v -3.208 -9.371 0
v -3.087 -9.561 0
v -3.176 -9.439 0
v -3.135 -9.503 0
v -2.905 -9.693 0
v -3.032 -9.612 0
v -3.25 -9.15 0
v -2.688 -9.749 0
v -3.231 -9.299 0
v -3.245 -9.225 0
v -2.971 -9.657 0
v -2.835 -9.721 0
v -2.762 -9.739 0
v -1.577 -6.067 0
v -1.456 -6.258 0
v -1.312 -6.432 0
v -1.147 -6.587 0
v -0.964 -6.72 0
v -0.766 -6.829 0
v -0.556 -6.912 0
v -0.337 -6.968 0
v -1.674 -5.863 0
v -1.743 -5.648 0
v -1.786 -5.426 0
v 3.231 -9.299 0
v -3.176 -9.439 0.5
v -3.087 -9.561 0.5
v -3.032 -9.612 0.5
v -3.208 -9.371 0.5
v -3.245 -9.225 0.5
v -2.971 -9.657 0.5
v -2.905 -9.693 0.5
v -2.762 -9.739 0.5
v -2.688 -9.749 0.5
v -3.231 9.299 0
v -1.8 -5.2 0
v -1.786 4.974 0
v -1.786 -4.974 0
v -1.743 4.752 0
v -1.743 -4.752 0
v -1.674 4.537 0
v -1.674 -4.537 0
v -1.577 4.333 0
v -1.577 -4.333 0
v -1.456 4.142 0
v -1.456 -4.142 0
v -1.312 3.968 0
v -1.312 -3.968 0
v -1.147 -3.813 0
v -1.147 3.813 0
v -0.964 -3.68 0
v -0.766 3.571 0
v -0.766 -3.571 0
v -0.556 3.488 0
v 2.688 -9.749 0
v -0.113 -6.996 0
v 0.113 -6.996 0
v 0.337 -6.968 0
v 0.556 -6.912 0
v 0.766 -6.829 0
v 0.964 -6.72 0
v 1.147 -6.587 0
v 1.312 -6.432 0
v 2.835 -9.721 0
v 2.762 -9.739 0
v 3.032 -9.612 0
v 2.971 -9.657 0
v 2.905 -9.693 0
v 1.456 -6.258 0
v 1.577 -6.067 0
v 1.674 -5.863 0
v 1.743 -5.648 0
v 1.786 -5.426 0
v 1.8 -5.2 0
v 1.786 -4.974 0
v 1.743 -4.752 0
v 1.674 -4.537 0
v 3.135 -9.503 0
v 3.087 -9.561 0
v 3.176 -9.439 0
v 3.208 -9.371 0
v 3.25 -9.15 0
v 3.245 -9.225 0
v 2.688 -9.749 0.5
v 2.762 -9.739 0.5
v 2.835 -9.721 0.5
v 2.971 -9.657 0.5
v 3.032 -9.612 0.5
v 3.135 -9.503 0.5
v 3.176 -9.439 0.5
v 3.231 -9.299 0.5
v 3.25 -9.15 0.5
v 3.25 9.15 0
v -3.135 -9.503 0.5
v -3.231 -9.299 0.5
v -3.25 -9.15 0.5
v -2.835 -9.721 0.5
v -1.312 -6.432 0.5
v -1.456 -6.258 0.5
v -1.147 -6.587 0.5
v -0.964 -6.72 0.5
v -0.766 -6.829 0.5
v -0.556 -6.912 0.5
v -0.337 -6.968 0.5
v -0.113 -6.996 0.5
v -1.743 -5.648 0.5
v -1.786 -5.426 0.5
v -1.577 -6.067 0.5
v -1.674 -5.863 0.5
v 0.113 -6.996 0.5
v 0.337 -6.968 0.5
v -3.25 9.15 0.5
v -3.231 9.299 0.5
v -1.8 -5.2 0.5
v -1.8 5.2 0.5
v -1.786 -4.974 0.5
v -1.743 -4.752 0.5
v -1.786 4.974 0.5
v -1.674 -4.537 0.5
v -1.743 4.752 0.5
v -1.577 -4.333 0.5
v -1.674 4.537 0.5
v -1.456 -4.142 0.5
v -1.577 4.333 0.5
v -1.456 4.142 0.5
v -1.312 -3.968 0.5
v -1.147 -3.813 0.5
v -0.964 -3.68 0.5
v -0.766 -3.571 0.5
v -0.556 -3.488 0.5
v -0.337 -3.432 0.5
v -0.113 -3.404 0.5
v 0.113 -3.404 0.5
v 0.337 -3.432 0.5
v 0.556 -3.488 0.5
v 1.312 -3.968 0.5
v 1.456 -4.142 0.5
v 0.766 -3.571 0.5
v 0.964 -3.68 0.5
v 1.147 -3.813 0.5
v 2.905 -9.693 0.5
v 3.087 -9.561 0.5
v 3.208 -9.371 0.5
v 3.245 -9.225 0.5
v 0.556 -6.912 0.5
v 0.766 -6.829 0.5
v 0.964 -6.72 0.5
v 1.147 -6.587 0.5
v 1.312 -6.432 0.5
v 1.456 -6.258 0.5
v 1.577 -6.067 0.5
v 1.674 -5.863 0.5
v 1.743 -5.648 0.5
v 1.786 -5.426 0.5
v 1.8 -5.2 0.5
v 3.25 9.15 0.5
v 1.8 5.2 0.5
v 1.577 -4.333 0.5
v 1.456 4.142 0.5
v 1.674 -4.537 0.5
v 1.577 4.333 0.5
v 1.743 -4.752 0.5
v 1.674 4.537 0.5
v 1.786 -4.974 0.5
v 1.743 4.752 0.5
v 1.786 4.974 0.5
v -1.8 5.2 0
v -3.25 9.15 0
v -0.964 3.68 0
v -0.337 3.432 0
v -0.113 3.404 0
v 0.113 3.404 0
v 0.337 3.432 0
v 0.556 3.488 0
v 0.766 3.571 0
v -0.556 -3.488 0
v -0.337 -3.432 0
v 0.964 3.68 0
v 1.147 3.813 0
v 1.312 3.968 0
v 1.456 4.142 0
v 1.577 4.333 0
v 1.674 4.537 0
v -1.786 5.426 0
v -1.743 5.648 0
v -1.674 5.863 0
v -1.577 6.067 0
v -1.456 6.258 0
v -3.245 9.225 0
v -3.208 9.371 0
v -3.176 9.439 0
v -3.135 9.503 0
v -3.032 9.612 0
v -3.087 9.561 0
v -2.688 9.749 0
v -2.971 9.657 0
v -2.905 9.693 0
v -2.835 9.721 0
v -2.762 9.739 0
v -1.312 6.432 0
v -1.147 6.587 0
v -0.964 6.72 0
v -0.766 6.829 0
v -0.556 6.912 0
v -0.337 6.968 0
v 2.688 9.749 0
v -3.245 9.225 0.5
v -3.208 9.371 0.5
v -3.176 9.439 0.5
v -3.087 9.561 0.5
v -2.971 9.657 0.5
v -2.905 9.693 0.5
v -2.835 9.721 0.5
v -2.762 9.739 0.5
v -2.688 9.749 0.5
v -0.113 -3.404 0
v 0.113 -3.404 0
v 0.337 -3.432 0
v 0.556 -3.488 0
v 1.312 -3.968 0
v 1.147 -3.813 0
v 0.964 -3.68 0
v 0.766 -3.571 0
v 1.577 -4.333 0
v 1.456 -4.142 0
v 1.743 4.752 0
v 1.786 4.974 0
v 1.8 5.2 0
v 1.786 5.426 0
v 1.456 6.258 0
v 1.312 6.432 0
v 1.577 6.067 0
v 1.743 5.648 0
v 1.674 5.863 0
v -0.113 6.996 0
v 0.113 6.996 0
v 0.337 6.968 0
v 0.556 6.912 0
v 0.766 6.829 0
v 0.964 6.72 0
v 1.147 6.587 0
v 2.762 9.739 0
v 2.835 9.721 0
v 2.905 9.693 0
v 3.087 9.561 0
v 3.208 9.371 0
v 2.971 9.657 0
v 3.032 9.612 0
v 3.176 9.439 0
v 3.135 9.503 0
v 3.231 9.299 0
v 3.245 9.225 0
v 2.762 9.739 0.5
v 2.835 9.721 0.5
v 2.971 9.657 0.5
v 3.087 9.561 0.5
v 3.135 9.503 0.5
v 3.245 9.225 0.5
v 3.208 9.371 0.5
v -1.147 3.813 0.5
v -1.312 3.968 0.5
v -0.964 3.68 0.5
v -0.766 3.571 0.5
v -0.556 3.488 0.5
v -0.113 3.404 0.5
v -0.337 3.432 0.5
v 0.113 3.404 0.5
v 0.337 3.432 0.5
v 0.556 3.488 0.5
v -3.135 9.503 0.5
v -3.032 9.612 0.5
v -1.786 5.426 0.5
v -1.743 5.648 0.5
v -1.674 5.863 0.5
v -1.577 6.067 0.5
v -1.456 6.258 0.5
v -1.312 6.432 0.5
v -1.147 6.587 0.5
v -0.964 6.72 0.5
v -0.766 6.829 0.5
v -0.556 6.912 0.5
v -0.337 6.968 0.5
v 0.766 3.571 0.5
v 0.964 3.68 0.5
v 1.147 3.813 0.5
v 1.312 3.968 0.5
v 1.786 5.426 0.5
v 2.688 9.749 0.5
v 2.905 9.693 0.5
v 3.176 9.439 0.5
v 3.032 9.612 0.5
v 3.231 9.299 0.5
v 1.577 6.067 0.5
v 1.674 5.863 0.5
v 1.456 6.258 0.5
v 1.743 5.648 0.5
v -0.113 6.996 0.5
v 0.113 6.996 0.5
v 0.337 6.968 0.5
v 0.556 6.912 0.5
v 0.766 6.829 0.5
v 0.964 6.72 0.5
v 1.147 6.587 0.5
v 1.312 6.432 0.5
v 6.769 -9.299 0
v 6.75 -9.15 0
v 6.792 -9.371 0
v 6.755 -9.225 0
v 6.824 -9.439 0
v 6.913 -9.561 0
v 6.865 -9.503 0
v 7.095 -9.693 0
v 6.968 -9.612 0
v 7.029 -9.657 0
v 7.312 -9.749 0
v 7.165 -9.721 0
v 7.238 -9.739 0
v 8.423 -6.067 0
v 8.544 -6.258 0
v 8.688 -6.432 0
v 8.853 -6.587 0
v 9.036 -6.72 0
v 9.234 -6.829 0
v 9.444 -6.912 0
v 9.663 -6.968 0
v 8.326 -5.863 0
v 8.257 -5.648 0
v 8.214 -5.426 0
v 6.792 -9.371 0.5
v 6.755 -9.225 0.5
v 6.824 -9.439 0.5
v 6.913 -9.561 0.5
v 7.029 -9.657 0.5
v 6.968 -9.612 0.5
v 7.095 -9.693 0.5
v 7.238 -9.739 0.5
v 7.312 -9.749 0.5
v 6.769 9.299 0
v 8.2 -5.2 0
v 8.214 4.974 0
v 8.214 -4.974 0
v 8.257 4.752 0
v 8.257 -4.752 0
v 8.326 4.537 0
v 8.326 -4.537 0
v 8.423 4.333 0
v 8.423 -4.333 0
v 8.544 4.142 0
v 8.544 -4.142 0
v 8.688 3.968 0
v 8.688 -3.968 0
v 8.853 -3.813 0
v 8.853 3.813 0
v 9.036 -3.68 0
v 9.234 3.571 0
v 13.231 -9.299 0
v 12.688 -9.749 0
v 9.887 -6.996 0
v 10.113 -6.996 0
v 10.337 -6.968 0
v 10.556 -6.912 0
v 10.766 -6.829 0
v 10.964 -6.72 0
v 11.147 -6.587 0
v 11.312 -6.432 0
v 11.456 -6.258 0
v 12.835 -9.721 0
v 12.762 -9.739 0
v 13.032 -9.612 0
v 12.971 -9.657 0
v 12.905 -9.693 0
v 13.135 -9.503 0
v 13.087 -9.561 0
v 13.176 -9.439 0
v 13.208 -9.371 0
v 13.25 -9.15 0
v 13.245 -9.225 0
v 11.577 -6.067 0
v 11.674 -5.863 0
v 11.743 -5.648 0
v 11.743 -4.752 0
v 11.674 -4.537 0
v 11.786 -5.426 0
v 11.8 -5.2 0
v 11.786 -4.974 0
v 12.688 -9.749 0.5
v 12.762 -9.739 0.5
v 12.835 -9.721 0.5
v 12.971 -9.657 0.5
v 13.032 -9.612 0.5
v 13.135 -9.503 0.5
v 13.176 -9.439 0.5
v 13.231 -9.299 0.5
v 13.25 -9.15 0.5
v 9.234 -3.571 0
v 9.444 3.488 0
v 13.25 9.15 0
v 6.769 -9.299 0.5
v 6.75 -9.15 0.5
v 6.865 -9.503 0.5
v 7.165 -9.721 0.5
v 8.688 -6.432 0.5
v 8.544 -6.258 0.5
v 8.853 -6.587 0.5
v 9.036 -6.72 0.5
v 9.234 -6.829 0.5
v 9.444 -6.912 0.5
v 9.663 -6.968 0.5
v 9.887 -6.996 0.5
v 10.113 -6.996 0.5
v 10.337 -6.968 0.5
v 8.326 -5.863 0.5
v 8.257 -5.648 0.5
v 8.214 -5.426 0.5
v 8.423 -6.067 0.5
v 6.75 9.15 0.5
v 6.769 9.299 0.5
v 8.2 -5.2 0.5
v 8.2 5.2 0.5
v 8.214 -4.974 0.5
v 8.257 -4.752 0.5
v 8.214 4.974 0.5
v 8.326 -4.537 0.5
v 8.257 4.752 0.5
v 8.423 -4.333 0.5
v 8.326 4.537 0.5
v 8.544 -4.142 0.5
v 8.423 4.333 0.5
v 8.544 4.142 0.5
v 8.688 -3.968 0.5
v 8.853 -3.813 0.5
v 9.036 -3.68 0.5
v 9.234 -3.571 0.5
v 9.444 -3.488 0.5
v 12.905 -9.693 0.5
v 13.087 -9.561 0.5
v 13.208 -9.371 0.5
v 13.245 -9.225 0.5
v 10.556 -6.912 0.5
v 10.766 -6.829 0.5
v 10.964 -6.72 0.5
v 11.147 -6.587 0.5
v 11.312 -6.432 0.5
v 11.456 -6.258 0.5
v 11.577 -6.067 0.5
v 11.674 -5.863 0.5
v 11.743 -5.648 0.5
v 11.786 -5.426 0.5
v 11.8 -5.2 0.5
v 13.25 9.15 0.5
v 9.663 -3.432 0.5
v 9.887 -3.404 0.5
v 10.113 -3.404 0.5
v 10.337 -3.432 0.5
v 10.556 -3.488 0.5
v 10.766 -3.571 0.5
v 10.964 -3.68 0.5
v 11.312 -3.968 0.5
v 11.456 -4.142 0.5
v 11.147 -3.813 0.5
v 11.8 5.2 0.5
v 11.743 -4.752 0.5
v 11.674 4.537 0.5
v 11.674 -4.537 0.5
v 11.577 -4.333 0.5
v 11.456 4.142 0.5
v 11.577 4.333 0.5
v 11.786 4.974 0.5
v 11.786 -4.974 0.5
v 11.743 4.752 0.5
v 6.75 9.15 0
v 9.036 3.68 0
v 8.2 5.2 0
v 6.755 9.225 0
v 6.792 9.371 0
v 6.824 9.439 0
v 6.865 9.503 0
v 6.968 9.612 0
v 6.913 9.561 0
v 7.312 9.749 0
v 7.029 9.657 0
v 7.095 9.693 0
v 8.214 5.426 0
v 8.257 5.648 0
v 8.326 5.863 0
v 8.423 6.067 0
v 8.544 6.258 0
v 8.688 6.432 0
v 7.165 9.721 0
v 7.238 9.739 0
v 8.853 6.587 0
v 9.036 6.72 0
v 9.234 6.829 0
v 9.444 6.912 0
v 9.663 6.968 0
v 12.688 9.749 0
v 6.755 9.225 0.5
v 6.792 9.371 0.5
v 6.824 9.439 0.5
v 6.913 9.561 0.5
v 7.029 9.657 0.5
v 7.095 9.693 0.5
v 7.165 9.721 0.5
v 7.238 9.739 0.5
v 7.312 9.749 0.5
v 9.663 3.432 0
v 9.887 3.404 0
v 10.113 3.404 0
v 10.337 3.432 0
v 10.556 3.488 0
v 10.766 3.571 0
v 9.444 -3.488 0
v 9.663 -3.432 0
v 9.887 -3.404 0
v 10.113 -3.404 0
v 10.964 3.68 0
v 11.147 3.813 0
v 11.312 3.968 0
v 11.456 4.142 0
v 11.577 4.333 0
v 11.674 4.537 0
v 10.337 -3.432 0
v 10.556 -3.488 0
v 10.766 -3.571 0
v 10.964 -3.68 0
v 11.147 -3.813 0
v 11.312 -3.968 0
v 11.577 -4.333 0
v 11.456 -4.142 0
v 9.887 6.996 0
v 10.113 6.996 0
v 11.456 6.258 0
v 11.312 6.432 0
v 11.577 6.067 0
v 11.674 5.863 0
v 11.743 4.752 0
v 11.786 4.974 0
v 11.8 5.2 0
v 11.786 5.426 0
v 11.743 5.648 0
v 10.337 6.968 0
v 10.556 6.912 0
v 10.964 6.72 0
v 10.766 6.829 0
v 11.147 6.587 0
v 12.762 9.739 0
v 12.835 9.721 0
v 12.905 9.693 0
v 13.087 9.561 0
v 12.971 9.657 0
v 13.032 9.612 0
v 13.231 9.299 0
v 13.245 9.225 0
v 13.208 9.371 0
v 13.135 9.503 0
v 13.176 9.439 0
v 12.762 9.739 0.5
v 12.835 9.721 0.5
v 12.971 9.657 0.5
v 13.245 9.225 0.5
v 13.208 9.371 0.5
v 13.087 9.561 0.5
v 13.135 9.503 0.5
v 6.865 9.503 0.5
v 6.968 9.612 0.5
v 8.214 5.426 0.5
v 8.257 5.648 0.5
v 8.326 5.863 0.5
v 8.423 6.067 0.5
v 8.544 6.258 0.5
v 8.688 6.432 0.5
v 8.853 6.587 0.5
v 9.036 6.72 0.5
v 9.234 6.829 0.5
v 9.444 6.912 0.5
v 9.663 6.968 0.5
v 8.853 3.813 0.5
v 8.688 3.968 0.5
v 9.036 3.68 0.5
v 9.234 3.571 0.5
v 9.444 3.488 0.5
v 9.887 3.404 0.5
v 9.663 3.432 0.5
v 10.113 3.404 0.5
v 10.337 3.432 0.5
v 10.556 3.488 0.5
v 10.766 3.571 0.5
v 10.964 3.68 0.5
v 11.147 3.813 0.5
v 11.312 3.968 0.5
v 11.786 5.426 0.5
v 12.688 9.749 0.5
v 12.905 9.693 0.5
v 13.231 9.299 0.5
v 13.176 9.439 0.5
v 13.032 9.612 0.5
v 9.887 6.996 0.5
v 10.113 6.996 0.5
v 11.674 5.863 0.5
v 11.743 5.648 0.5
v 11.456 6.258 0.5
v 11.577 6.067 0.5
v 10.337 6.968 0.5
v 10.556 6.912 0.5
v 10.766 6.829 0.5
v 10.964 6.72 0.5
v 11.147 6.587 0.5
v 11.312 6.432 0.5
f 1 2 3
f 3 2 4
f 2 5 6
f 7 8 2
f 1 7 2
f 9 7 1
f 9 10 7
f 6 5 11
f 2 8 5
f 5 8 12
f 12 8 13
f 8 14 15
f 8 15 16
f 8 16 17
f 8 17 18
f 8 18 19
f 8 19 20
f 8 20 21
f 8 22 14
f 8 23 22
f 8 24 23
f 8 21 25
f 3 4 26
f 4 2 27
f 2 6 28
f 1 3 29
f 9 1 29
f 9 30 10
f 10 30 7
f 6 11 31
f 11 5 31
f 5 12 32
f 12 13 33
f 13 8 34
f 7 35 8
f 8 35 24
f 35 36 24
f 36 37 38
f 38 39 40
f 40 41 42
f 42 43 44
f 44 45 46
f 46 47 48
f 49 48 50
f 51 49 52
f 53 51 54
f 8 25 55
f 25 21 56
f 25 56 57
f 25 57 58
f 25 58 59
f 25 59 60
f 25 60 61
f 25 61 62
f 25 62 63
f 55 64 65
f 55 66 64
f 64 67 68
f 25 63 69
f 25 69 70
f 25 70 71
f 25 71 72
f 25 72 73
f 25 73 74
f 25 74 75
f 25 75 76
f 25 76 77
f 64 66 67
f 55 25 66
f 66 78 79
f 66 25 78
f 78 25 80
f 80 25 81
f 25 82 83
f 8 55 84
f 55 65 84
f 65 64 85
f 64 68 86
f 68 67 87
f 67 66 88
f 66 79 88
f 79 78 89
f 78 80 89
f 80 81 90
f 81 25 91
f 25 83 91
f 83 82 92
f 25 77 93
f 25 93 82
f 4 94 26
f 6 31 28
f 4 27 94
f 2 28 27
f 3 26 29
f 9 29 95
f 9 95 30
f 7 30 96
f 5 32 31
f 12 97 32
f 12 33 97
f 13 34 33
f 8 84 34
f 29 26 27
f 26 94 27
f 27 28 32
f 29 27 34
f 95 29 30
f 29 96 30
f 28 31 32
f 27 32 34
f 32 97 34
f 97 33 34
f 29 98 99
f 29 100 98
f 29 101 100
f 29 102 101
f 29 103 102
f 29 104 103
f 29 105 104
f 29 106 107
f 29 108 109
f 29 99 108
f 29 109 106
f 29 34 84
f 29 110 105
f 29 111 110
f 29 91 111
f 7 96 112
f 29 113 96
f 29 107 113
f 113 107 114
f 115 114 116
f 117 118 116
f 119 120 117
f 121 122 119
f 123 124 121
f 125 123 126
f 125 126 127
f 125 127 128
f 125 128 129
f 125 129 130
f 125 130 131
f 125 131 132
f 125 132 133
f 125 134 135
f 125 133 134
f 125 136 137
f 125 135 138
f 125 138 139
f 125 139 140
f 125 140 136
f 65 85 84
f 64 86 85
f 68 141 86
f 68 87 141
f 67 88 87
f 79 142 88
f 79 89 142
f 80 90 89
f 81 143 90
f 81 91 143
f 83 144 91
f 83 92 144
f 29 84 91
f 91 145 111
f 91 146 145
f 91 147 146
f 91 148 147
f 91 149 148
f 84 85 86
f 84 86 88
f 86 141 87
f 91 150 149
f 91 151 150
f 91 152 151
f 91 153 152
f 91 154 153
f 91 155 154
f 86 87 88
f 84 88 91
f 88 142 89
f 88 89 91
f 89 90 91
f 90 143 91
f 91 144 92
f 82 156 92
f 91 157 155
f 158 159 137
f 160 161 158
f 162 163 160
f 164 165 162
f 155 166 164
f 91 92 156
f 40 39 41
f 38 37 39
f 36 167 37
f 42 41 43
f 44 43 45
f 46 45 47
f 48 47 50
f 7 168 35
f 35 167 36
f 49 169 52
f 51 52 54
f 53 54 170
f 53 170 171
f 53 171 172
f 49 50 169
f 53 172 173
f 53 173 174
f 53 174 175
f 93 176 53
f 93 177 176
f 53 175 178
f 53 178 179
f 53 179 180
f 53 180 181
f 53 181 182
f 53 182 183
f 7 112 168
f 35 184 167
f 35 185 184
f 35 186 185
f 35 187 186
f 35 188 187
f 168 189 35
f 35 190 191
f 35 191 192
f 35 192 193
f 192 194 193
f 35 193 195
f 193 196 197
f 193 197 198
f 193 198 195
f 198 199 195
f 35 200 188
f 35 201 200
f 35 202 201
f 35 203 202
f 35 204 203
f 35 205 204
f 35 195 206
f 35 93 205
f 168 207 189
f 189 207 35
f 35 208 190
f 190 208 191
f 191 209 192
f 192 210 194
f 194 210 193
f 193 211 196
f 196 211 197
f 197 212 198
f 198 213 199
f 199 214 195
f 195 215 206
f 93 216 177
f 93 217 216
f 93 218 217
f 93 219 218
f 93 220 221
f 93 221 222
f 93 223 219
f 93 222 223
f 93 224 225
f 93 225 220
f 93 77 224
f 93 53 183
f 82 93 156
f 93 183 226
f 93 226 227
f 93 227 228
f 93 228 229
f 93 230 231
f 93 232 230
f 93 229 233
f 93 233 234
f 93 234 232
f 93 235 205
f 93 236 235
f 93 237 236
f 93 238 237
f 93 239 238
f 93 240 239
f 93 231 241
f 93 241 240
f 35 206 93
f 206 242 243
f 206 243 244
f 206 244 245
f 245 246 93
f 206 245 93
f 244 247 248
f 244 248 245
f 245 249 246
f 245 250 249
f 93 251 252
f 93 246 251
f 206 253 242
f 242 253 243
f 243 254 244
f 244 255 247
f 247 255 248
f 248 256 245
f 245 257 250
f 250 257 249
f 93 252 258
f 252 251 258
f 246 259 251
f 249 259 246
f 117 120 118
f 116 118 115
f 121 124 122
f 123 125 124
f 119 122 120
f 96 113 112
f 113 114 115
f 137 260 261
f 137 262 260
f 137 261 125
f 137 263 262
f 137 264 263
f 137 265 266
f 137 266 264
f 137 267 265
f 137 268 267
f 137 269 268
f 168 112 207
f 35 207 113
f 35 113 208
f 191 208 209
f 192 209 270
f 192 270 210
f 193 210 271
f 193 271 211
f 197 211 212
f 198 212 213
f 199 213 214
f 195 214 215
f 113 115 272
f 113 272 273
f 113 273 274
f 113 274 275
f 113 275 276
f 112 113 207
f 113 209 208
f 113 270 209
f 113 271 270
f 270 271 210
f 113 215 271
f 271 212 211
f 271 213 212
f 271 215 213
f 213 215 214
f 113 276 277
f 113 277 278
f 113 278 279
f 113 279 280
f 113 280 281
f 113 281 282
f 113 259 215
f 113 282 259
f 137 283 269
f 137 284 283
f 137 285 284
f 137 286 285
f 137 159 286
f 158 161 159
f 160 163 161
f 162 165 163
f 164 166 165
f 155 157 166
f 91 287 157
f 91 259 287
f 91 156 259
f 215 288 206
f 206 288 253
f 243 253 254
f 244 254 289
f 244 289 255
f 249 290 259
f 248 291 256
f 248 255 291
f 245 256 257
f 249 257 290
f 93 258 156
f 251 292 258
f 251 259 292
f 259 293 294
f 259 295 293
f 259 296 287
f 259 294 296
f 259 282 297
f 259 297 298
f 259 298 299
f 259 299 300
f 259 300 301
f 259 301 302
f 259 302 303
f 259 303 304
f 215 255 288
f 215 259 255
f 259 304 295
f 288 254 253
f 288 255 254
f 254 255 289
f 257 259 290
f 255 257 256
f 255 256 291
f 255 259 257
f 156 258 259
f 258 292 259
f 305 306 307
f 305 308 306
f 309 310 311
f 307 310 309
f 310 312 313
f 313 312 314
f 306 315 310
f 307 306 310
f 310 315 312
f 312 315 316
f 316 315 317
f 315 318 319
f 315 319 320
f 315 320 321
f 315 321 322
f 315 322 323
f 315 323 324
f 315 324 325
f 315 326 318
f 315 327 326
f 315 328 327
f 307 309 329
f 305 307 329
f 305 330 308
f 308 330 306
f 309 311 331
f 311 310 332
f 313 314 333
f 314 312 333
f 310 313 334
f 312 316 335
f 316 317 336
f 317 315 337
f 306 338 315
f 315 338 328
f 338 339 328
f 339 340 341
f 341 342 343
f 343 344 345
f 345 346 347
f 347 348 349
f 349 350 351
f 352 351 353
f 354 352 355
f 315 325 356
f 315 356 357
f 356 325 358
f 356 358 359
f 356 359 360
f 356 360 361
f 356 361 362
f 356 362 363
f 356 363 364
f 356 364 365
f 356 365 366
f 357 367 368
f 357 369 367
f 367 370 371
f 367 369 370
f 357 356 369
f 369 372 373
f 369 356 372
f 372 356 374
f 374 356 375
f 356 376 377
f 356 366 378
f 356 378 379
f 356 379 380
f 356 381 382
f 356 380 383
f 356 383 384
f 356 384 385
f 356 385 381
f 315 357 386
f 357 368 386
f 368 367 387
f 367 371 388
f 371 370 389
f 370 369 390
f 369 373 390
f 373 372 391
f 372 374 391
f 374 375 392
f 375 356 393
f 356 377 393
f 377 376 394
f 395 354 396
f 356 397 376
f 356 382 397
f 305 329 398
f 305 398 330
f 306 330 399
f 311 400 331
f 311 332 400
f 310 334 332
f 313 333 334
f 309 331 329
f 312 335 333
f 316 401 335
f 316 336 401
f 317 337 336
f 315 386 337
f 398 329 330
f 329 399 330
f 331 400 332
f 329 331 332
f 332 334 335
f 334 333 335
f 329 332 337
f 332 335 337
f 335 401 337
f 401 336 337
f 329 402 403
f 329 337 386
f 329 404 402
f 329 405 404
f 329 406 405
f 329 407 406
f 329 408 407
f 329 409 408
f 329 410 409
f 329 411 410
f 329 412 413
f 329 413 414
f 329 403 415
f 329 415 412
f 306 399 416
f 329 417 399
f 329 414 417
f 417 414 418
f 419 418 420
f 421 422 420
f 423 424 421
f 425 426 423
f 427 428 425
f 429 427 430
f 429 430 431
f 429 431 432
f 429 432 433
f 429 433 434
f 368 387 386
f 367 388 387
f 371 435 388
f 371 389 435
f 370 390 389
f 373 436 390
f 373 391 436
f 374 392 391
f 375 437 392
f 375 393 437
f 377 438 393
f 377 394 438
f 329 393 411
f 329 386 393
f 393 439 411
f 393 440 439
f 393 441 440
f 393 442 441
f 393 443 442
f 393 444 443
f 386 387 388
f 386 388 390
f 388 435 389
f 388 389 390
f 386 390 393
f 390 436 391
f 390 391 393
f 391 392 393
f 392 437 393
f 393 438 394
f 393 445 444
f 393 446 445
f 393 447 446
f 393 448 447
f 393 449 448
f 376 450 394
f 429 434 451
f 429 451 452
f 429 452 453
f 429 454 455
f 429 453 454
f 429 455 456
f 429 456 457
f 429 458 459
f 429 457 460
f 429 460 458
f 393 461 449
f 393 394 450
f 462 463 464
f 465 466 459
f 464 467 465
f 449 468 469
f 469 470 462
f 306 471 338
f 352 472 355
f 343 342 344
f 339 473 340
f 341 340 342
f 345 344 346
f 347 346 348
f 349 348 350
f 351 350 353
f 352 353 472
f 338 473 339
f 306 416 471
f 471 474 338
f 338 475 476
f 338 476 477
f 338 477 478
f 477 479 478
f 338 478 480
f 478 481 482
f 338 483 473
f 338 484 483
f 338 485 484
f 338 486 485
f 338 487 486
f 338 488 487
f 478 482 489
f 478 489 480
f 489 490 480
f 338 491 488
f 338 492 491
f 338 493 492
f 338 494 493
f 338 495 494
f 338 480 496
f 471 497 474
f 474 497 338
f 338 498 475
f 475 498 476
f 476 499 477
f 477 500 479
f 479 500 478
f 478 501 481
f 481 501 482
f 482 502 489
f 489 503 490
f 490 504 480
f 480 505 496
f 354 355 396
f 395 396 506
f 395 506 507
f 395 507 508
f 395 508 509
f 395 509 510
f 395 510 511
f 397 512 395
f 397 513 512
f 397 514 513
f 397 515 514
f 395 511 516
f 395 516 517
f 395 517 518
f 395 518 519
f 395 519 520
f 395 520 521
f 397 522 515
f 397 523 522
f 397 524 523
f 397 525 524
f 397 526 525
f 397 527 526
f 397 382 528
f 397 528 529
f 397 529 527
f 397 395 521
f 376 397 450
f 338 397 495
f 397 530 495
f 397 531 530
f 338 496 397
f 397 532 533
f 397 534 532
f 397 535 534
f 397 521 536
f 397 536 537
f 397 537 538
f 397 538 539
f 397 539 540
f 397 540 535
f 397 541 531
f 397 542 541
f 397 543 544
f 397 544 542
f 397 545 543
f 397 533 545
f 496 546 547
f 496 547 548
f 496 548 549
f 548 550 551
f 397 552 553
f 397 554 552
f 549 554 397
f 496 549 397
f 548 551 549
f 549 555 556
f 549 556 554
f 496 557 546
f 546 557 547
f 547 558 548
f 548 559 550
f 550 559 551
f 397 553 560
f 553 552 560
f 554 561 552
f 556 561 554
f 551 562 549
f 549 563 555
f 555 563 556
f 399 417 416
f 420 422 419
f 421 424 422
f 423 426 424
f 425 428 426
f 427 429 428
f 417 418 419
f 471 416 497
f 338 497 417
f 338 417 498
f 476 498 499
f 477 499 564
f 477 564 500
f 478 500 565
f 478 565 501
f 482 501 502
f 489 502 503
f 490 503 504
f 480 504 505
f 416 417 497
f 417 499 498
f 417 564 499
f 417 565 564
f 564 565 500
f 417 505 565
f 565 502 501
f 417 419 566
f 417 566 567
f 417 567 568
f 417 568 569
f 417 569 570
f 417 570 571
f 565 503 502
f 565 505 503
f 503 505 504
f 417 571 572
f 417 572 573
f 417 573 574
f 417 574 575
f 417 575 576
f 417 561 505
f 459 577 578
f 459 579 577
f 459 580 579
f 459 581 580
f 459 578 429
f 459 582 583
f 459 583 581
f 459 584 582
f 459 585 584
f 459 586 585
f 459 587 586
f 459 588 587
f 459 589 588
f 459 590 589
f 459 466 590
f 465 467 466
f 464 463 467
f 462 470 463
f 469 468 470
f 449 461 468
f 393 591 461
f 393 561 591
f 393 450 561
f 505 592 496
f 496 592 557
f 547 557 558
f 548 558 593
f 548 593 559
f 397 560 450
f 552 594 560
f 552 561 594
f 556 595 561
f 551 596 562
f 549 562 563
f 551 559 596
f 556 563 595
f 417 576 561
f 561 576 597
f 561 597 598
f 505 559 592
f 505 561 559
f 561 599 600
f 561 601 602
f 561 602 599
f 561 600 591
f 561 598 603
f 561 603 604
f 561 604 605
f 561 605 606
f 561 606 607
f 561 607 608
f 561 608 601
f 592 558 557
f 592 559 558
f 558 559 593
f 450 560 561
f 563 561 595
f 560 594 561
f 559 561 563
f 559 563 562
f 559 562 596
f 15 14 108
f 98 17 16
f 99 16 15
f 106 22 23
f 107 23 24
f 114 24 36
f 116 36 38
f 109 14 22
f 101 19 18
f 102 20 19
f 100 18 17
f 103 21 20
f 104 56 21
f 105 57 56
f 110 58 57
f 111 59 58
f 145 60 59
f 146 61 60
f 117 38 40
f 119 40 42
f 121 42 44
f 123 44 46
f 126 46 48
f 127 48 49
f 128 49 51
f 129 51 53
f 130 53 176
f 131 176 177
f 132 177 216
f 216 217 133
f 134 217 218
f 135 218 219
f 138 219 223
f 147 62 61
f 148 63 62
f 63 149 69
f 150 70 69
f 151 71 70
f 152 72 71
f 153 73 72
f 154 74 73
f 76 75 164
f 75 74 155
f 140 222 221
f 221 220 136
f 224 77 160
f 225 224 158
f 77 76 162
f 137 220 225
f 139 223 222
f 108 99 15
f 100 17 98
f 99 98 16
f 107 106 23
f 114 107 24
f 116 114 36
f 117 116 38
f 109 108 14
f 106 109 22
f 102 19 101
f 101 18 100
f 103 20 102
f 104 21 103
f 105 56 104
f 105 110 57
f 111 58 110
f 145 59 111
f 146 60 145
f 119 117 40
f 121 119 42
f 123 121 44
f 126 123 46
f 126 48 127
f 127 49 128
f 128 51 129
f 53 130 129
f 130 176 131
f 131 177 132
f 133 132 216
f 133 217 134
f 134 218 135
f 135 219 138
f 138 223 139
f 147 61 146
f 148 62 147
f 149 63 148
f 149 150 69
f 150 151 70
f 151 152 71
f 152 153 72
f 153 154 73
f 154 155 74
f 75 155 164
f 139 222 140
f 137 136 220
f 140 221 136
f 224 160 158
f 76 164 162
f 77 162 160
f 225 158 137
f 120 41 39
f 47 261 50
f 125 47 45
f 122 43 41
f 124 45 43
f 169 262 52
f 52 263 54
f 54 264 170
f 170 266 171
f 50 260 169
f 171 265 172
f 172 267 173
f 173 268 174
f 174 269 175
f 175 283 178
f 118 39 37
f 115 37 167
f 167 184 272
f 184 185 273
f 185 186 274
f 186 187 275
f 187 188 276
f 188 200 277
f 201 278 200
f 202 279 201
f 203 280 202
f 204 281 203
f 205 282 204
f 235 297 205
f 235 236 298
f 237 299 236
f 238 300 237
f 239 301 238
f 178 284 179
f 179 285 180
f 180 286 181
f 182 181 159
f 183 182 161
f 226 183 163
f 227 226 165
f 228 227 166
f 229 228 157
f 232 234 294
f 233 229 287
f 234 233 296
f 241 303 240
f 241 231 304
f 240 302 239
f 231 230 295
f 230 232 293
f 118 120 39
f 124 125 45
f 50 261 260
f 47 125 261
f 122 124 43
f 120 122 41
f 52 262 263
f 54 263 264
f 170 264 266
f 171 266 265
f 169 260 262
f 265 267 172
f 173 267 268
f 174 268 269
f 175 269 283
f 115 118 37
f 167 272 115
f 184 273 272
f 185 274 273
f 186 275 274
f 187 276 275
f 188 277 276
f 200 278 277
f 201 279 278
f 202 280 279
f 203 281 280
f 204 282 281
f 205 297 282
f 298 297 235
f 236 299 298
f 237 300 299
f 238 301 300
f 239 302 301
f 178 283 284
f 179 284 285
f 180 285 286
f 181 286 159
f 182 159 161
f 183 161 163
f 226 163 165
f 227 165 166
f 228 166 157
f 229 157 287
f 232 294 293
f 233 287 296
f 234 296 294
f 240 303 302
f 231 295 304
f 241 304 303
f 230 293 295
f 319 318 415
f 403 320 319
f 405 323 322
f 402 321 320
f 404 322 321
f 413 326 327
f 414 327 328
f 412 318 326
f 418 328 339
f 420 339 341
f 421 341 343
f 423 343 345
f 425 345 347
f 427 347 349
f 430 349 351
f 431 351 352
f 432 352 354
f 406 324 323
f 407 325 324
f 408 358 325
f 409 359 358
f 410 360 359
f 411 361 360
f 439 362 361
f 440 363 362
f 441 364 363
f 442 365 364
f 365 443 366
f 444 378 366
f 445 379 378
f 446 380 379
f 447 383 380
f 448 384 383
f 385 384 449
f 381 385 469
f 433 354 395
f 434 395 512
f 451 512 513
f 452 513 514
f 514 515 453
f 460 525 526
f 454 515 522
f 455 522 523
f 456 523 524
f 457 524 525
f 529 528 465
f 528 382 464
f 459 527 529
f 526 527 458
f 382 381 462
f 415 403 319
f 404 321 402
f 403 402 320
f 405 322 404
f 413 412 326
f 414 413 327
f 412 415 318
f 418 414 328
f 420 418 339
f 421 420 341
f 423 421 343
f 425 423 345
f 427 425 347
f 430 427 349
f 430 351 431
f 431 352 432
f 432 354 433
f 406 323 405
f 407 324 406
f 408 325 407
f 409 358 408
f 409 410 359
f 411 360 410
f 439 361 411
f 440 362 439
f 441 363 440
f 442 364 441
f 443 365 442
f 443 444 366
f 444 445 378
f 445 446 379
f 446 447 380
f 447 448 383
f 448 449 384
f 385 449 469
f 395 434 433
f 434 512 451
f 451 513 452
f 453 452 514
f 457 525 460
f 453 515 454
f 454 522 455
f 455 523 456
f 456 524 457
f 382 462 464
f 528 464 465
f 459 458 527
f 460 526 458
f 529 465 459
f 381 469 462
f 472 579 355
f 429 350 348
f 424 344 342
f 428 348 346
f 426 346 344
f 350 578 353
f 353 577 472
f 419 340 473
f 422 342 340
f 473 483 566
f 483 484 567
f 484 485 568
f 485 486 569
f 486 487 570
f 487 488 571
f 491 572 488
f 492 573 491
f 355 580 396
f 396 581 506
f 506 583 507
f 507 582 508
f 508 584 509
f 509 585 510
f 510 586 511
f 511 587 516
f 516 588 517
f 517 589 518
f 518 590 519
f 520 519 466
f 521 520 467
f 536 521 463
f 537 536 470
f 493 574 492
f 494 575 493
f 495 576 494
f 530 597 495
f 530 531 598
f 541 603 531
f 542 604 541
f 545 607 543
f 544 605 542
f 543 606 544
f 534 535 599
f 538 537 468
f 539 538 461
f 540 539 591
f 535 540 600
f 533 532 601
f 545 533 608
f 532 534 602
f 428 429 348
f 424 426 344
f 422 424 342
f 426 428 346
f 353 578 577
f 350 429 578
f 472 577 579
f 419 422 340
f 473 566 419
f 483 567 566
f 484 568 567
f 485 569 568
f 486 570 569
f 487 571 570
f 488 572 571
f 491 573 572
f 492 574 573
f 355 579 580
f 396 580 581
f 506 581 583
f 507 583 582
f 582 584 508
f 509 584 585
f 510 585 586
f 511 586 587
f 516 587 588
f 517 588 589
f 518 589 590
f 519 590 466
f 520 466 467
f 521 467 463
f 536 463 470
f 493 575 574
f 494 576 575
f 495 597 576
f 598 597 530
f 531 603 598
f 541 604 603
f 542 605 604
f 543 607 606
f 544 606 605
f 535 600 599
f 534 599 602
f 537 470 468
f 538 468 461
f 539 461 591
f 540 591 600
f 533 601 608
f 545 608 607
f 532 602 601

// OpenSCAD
$fn = 50;

difference() {
	union() {
		translate(v = [34.5, 0, 0.5]) {
			rotate(a = [0, 0, 0]) {
				difference() {
					union() {
						translate(v = [-34.5, 0, -0.5]) {
							hull() {
								translate(v = [-2.65, 9.15, 0]) {
									cylinder(h = 0.5, r = 0.6);
								}
								translate(v = [2.65, 9.15, 0]) {
									cylinder(h = 0.5, r = 0.6);
								}
								translate(v = [-2.65, -9.15, 0]) {
									cylinder(h = 0.5, r = 0.6);
								}
								translate(v = [2.65, -9.15, 0]) {
									cylinder(h = 0.5, r = 0.6);
								}
							}
						}
					}
					union() {
						translate(v = [-34.5, -5.2, -1.5]) {
							cylinder(h = 2.5, r = 1.8);
						}
						translate(v = [-34.5, 5.2, -1.5]) {
							cylinder(h = 2.5, r = 1.8);
						}
					}
				}
			}
		}
		translate(v = [-4.5, 0, 0.5]) {
			rotate(a = [0, 0, 0]) {
				difference() {
					union() {
						translate(v = [14.5, 0, -0.5]) {
							hull() {
								translate(v = [-2.65, 9.15, 0]) {
									cylinder(h = 0.5, r = 0.6);
								}
								translate(v = [2.65, 9.15, 0]) {
									cylinder(h = 0.5, r = 0.6);
								}
								translate(v = [-2.65, -9.15, 0]) {
									cylinder(h = 0.5, r = 0.6);
								}
								translate(v = [2.65, -9.15, 0]) {
									cylinder(h = 0.5, r = 0.6);
								}
							}
						}
					}
					union() {
						translate(v = [14.5, -5.2, -1.5]) {
							cylinder(h = 2.5, r = 1.8);
						}
						translate(v = [14.5, 5.2, -1.5]) {
							cylinder(h = 2.5, r = 1.8);
						}
					}
				}
			}
		}
	}
	union();
}
